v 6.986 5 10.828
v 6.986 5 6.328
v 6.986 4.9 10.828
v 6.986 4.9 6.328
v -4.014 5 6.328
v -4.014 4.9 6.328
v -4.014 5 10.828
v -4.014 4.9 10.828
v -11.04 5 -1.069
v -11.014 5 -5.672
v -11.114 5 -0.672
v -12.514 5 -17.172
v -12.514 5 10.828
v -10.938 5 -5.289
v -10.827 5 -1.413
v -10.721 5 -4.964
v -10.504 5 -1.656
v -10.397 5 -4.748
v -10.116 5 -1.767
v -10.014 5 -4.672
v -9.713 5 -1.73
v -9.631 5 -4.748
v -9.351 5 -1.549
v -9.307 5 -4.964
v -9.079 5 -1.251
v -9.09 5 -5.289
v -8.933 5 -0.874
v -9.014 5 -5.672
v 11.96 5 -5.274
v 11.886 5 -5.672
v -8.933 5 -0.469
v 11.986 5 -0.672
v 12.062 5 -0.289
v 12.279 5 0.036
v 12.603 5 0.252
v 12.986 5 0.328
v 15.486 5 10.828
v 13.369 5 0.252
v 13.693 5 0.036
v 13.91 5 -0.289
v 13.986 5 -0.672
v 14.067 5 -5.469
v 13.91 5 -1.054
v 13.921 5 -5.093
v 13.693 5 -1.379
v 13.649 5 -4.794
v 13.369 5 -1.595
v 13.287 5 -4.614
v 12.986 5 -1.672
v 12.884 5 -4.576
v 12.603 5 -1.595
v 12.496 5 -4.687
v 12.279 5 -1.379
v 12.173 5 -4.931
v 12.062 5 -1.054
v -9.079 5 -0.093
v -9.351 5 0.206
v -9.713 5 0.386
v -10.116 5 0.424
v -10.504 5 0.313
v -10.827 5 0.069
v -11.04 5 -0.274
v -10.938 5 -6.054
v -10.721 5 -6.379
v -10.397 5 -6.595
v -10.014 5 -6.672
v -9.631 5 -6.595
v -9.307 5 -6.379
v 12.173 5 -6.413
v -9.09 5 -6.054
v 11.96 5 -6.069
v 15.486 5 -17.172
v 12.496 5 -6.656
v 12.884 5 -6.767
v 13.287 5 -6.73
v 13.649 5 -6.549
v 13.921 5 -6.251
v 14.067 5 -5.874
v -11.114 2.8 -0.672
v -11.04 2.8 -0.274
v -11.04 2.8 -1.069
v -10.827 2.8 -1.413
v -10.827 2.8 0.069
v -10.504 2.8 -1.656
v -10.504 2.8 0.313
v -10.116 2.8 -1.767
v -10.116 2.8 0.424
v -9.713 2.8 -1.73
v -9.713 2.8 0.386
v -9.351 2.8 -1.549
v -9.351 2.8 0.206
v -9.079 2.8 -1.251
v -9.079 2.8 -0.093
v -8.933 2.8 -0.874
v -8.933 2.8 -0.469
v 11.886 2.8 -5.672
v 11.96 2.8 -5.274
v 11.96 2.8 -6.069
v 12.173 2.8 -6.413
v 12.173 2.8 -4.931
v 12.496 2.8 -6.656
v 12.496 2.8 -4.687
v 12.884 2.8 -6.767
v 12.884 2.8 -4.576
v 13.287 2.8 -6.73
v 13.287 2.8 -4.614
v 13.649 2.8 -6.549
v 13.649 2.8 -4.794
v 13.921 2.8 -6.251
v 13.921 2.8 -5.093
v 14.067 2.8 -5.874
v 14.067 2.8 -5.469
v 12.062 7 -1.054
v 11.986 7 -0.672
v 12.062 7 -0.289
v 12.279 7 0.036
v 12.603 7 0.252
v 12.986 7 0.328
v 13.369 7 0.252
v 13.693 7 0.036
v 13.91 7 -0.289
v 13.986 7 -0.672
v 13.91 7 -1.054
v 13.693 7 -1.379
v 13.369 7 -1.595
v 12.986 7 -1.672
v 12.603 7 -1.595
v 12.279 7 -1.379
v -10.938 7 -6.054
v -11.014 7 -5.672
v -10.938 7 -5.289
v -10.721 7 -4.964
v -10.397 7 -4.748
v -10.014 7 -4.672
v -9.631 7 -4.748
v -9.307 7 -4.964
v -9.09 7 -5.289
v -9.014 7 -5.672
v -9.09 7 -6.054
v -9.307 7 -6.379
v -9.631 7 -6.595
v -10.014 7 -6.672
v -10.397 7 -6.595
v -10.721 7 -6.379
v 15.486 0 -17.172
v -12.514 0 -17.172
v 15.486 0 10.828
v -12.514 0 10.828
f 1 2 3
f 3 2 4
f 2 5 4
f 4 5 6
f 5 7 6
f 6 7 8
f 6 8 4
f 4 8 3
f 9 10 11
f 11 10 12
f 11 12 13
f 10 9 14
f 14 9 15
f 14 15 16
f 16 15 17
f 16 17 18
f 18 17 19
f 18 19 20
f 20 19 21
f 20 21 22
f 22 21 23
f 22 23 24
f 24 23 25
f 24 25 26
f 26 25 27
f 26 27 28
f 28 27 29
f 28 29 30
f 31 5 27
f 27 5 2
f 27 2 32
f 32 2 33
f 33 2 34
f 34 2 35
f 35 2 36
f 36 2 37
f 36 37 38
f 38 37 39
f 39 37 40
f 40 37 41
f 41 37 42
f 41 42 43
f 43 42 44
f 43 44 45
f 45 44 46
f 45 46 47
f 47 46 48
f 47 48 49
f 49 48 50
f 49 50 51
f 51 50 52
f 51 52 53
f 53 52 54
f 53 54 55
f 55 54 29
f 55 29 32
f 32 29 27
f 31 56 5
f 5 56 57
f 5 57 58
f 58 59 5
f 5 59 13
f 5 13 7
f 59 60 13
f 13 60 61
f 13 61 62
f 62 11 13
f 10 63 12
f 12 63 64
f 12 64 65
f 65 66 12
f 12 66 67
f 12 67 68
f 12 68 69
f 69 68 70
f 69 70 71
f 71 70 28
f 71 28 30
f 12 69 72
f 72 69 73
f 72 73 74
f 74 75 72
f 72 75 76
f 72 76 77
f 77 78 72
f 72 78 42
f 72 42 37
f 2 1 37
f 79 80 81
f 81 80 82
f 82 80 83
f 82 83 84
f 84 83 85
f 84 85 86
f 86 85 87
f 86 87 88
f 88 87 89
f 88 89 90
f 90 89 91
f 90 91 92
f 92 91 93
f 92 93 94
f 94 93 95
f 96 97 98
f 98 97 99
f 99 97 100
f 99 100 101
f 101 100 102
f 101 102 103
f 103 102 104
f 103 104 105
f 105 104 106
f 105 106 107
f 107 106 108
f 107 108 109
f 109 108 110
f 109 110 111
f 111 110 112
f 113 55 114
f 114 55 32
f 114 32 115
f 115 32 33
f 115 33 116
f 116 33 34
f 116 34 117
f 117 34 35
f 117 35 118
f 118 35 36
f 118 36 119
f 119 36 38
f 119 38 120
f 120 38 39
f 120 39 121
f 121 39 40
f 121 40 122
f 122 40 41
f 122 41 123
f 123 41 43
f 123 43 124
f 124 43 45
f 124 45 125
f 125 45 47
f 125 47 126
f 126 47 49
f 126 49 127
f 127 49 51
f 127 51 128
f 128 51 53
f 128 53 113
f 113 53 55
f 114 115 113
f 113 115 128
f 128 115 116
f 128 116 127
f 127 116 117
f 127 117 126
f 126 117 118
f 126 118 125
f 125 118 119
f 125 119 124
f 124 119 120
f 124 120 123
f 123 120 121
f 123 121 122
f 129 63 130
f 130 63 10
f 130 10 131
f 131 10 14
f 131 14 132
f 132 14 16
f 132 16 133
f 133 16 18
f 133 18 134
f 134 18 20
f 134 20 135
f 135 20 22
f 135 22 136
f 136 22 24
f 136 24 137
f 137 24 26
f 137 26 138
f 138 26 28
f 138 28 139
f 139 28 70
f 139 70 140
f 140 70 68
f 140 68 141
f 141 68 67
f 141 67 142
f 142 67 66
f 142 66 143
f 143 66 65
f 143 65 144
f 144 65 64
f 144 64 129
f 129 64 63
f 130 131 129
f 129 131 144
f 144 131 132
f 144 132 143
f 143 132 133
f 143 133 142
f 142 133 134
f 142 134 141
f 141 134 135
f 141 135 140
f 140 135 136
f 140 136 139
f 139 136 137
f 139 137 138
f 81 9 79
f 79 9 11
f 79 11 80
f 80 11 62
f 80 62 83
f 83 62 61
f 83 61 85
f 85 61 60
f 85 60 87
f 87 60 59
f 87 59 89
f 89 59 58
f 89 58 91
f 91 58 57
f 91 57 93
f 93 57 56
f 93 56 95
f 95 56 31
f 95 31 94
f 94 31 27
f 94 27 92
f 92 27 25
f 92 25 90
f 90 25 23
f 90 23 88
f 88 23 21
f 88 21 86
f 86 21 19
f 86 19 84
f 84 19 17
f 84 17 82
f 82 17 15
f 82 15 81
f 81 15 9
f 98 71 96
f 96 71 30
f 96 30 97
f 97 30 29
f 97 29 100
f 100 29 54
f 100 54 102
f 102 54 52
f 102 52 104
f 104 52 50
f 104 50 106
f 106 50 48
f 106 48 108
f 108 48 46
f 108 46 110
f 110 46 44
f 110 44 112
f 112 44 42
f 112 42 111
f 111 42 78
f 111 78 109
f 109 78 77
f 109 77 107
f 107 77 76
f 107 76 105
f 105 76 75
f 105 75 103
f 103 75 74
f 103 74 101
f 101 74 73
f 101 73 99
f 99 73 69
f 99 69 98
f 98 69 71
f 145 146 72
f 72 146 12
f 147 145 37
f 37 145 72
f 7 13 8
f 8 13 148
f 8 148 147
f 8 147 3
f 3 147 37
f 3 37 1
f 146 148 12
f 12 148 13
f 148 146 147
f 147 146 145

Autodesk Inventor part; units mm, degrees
ref_plane "YZ Plane" through (0, 0, 0) normal (1, 0, 0) x (0, 1, 0)
ref_plane "XZ Plane" through (0, 0, 0) normal (0, 1, 0) x (-1, 0, 0)
ref_plane "XY Plane" through (0, 0, 0) normal (0, 0, 1) x (1, 0, 0)
sketch "Sketch1" plane through (0, 0, 0) normal (0, 1, 0) x (-1, 0, 0)
  line L0 (-15.486, -17.1716) -> (12.514, -17.1716)
  line L1 (12.514, 10.8284) -> (-15.486, 10.8284)
  line L2 (-20.486, 10.8284) -> (12.514, 10.8284) construction
  line L3 (-15.486, 5.8284) -> (-15.486, -12.1716)
  line L4 (12.514, 7.8284) -> (12.514, -12.1716)
  line L5 (12.514, -8.1716) -> (12.514, -3.1716)
  line L6 (7.514, -3.1716) -> (7.514, -8.1716)
  line L7 (7.514, -8.1716) -> (12.514, -8.1716)
  line L8 (12.514, 1.8284) -> (12.514, -3.1716)
  line L9 (7.514, -1.1716) -> (7.514, 1.8284)
  line L10 (7.514, 1.8284) -> (12.514, 1.8284)
  line L11 (12.514, -8.1716) -> (12.514, -3.1716)
  line L12 (12.514, -3.1716) -> (12.514, 1.8284)
  line L13 (12.514, 1.8284) -> (12.514, -3.1716)
  line L14 (12.514, -3.1716) -> (12.514, -8.1716)
  line L15 (12.514, -12.1716) -> (12.514, -17.1716)
  line L16 (12.514, 7.8284) -> (12.514, 10.8284)
  line L17 (-1.486, -17.1716) -> (-1.486, 10.8284)
  circle A0 centre (-12.986, -0.6716) radius 1
  line L18 (-10.486, 1.8284) -> (-15.486, 1.8284)
  line L19 (-15.486, 1.8284) -> (-15.486, -3.1716)
  line L20 (-15.486, -3.1716) -> (-15.486, 1.8284)
  line L21 (-15.486, 1.8284) -> (-15.486, -3.1716)
  line L22 (-10.486, -1.1716) -> (-10.486, 1.8284)
  circle A1 centre (-12.986, -5.6716) radius 1.1
  line L23 (-15.486, -8.1716) -> (-15.486, -3.1716)
  line L24 (-15.486, -8.1716) -> (-15.486, -3.1716)
  line L25 (-15.486, -3.1716) -> (-15.486, -8.1716)
  line L26 (-10.486, -3.1716) -> (-10.486, -8.1716)
  line L27 (-10.486, -8.1716) -> (-15.486, -8.1716)
  line L28 (-15.486, -12.1716) -> (-15.486, -17.1716)
  line L29 (-15.486, 7.8284) -> (-15.486, -12.1716)
  line L30 (-15.486, 10.8284) -> (-15.486, -17.1716)
  line L31 (10.014, -5.6716) -> (12.514, -5.6716)
  line L32 (10.014, -0.6716) -> (12.514, -0.6716)
  circle A2 centre (10.014, -5.6716) radius 1
  circle A3 centre (10.014, -0.6716) radius 1.1
  point P0 (0, 0)
  point P1 (10.014, -8.1716)
  point P2 (10.014, 1.8284)
  point P3 (-12.986, 1.8284)
  point P4 (-12.986, -8.1716)
  point P5 (12.514, 1.8284)
  point P6 (-15.486, 1.8284)
  point P7 (12.514, -8.1716)
  dimension "d0" = 5
  dimension "d1" = 2.5
  dimension "d2" = 2.5
  dimension "d3" = 2
  dimension "d4" = 2.2
  dimension "d5" = 2.2
  dimension "d6" = 28
  dimension "d7" = 28
  dimension "d19" = 28
extrude "Extrusion1" add sketch "Sketch1" along normal blind 5
extrude "Extrusion2" add sketch "Sketch1" along normal blind 7 contours A2 | A0
extrude "Extrusion3" add sketch "Sketch1" along normal blind 2.8 contours A3 | A1
sketch "Sketch2" plane through (0, 5, 0) normal (0, 1, 0) x (1, 0, 0)
  line L0 (-12.514, -10.8284) -> (15.486, -10.8284) projected
  line L1 (1.486, -10.8284) -> (6.986, -10.8284)
  line L2 (6.986, -10.8284) -> (6.986, -6.3284)
  line L3 (6.986, -6.3284) -> (-4.014, -6.3284)
  line L4 (-4.014, -6.3284) -> (-4.014, -10.8284)
  point P0 (0, 0)
  dimension "d14" = 5.5
  dimension "d15" = 4.5
  dimension "d16" = 11
extrude "Extrusion4" cut sketch "Sketch2" against normal blind 0.1
properties part number "TracciaSopra"
